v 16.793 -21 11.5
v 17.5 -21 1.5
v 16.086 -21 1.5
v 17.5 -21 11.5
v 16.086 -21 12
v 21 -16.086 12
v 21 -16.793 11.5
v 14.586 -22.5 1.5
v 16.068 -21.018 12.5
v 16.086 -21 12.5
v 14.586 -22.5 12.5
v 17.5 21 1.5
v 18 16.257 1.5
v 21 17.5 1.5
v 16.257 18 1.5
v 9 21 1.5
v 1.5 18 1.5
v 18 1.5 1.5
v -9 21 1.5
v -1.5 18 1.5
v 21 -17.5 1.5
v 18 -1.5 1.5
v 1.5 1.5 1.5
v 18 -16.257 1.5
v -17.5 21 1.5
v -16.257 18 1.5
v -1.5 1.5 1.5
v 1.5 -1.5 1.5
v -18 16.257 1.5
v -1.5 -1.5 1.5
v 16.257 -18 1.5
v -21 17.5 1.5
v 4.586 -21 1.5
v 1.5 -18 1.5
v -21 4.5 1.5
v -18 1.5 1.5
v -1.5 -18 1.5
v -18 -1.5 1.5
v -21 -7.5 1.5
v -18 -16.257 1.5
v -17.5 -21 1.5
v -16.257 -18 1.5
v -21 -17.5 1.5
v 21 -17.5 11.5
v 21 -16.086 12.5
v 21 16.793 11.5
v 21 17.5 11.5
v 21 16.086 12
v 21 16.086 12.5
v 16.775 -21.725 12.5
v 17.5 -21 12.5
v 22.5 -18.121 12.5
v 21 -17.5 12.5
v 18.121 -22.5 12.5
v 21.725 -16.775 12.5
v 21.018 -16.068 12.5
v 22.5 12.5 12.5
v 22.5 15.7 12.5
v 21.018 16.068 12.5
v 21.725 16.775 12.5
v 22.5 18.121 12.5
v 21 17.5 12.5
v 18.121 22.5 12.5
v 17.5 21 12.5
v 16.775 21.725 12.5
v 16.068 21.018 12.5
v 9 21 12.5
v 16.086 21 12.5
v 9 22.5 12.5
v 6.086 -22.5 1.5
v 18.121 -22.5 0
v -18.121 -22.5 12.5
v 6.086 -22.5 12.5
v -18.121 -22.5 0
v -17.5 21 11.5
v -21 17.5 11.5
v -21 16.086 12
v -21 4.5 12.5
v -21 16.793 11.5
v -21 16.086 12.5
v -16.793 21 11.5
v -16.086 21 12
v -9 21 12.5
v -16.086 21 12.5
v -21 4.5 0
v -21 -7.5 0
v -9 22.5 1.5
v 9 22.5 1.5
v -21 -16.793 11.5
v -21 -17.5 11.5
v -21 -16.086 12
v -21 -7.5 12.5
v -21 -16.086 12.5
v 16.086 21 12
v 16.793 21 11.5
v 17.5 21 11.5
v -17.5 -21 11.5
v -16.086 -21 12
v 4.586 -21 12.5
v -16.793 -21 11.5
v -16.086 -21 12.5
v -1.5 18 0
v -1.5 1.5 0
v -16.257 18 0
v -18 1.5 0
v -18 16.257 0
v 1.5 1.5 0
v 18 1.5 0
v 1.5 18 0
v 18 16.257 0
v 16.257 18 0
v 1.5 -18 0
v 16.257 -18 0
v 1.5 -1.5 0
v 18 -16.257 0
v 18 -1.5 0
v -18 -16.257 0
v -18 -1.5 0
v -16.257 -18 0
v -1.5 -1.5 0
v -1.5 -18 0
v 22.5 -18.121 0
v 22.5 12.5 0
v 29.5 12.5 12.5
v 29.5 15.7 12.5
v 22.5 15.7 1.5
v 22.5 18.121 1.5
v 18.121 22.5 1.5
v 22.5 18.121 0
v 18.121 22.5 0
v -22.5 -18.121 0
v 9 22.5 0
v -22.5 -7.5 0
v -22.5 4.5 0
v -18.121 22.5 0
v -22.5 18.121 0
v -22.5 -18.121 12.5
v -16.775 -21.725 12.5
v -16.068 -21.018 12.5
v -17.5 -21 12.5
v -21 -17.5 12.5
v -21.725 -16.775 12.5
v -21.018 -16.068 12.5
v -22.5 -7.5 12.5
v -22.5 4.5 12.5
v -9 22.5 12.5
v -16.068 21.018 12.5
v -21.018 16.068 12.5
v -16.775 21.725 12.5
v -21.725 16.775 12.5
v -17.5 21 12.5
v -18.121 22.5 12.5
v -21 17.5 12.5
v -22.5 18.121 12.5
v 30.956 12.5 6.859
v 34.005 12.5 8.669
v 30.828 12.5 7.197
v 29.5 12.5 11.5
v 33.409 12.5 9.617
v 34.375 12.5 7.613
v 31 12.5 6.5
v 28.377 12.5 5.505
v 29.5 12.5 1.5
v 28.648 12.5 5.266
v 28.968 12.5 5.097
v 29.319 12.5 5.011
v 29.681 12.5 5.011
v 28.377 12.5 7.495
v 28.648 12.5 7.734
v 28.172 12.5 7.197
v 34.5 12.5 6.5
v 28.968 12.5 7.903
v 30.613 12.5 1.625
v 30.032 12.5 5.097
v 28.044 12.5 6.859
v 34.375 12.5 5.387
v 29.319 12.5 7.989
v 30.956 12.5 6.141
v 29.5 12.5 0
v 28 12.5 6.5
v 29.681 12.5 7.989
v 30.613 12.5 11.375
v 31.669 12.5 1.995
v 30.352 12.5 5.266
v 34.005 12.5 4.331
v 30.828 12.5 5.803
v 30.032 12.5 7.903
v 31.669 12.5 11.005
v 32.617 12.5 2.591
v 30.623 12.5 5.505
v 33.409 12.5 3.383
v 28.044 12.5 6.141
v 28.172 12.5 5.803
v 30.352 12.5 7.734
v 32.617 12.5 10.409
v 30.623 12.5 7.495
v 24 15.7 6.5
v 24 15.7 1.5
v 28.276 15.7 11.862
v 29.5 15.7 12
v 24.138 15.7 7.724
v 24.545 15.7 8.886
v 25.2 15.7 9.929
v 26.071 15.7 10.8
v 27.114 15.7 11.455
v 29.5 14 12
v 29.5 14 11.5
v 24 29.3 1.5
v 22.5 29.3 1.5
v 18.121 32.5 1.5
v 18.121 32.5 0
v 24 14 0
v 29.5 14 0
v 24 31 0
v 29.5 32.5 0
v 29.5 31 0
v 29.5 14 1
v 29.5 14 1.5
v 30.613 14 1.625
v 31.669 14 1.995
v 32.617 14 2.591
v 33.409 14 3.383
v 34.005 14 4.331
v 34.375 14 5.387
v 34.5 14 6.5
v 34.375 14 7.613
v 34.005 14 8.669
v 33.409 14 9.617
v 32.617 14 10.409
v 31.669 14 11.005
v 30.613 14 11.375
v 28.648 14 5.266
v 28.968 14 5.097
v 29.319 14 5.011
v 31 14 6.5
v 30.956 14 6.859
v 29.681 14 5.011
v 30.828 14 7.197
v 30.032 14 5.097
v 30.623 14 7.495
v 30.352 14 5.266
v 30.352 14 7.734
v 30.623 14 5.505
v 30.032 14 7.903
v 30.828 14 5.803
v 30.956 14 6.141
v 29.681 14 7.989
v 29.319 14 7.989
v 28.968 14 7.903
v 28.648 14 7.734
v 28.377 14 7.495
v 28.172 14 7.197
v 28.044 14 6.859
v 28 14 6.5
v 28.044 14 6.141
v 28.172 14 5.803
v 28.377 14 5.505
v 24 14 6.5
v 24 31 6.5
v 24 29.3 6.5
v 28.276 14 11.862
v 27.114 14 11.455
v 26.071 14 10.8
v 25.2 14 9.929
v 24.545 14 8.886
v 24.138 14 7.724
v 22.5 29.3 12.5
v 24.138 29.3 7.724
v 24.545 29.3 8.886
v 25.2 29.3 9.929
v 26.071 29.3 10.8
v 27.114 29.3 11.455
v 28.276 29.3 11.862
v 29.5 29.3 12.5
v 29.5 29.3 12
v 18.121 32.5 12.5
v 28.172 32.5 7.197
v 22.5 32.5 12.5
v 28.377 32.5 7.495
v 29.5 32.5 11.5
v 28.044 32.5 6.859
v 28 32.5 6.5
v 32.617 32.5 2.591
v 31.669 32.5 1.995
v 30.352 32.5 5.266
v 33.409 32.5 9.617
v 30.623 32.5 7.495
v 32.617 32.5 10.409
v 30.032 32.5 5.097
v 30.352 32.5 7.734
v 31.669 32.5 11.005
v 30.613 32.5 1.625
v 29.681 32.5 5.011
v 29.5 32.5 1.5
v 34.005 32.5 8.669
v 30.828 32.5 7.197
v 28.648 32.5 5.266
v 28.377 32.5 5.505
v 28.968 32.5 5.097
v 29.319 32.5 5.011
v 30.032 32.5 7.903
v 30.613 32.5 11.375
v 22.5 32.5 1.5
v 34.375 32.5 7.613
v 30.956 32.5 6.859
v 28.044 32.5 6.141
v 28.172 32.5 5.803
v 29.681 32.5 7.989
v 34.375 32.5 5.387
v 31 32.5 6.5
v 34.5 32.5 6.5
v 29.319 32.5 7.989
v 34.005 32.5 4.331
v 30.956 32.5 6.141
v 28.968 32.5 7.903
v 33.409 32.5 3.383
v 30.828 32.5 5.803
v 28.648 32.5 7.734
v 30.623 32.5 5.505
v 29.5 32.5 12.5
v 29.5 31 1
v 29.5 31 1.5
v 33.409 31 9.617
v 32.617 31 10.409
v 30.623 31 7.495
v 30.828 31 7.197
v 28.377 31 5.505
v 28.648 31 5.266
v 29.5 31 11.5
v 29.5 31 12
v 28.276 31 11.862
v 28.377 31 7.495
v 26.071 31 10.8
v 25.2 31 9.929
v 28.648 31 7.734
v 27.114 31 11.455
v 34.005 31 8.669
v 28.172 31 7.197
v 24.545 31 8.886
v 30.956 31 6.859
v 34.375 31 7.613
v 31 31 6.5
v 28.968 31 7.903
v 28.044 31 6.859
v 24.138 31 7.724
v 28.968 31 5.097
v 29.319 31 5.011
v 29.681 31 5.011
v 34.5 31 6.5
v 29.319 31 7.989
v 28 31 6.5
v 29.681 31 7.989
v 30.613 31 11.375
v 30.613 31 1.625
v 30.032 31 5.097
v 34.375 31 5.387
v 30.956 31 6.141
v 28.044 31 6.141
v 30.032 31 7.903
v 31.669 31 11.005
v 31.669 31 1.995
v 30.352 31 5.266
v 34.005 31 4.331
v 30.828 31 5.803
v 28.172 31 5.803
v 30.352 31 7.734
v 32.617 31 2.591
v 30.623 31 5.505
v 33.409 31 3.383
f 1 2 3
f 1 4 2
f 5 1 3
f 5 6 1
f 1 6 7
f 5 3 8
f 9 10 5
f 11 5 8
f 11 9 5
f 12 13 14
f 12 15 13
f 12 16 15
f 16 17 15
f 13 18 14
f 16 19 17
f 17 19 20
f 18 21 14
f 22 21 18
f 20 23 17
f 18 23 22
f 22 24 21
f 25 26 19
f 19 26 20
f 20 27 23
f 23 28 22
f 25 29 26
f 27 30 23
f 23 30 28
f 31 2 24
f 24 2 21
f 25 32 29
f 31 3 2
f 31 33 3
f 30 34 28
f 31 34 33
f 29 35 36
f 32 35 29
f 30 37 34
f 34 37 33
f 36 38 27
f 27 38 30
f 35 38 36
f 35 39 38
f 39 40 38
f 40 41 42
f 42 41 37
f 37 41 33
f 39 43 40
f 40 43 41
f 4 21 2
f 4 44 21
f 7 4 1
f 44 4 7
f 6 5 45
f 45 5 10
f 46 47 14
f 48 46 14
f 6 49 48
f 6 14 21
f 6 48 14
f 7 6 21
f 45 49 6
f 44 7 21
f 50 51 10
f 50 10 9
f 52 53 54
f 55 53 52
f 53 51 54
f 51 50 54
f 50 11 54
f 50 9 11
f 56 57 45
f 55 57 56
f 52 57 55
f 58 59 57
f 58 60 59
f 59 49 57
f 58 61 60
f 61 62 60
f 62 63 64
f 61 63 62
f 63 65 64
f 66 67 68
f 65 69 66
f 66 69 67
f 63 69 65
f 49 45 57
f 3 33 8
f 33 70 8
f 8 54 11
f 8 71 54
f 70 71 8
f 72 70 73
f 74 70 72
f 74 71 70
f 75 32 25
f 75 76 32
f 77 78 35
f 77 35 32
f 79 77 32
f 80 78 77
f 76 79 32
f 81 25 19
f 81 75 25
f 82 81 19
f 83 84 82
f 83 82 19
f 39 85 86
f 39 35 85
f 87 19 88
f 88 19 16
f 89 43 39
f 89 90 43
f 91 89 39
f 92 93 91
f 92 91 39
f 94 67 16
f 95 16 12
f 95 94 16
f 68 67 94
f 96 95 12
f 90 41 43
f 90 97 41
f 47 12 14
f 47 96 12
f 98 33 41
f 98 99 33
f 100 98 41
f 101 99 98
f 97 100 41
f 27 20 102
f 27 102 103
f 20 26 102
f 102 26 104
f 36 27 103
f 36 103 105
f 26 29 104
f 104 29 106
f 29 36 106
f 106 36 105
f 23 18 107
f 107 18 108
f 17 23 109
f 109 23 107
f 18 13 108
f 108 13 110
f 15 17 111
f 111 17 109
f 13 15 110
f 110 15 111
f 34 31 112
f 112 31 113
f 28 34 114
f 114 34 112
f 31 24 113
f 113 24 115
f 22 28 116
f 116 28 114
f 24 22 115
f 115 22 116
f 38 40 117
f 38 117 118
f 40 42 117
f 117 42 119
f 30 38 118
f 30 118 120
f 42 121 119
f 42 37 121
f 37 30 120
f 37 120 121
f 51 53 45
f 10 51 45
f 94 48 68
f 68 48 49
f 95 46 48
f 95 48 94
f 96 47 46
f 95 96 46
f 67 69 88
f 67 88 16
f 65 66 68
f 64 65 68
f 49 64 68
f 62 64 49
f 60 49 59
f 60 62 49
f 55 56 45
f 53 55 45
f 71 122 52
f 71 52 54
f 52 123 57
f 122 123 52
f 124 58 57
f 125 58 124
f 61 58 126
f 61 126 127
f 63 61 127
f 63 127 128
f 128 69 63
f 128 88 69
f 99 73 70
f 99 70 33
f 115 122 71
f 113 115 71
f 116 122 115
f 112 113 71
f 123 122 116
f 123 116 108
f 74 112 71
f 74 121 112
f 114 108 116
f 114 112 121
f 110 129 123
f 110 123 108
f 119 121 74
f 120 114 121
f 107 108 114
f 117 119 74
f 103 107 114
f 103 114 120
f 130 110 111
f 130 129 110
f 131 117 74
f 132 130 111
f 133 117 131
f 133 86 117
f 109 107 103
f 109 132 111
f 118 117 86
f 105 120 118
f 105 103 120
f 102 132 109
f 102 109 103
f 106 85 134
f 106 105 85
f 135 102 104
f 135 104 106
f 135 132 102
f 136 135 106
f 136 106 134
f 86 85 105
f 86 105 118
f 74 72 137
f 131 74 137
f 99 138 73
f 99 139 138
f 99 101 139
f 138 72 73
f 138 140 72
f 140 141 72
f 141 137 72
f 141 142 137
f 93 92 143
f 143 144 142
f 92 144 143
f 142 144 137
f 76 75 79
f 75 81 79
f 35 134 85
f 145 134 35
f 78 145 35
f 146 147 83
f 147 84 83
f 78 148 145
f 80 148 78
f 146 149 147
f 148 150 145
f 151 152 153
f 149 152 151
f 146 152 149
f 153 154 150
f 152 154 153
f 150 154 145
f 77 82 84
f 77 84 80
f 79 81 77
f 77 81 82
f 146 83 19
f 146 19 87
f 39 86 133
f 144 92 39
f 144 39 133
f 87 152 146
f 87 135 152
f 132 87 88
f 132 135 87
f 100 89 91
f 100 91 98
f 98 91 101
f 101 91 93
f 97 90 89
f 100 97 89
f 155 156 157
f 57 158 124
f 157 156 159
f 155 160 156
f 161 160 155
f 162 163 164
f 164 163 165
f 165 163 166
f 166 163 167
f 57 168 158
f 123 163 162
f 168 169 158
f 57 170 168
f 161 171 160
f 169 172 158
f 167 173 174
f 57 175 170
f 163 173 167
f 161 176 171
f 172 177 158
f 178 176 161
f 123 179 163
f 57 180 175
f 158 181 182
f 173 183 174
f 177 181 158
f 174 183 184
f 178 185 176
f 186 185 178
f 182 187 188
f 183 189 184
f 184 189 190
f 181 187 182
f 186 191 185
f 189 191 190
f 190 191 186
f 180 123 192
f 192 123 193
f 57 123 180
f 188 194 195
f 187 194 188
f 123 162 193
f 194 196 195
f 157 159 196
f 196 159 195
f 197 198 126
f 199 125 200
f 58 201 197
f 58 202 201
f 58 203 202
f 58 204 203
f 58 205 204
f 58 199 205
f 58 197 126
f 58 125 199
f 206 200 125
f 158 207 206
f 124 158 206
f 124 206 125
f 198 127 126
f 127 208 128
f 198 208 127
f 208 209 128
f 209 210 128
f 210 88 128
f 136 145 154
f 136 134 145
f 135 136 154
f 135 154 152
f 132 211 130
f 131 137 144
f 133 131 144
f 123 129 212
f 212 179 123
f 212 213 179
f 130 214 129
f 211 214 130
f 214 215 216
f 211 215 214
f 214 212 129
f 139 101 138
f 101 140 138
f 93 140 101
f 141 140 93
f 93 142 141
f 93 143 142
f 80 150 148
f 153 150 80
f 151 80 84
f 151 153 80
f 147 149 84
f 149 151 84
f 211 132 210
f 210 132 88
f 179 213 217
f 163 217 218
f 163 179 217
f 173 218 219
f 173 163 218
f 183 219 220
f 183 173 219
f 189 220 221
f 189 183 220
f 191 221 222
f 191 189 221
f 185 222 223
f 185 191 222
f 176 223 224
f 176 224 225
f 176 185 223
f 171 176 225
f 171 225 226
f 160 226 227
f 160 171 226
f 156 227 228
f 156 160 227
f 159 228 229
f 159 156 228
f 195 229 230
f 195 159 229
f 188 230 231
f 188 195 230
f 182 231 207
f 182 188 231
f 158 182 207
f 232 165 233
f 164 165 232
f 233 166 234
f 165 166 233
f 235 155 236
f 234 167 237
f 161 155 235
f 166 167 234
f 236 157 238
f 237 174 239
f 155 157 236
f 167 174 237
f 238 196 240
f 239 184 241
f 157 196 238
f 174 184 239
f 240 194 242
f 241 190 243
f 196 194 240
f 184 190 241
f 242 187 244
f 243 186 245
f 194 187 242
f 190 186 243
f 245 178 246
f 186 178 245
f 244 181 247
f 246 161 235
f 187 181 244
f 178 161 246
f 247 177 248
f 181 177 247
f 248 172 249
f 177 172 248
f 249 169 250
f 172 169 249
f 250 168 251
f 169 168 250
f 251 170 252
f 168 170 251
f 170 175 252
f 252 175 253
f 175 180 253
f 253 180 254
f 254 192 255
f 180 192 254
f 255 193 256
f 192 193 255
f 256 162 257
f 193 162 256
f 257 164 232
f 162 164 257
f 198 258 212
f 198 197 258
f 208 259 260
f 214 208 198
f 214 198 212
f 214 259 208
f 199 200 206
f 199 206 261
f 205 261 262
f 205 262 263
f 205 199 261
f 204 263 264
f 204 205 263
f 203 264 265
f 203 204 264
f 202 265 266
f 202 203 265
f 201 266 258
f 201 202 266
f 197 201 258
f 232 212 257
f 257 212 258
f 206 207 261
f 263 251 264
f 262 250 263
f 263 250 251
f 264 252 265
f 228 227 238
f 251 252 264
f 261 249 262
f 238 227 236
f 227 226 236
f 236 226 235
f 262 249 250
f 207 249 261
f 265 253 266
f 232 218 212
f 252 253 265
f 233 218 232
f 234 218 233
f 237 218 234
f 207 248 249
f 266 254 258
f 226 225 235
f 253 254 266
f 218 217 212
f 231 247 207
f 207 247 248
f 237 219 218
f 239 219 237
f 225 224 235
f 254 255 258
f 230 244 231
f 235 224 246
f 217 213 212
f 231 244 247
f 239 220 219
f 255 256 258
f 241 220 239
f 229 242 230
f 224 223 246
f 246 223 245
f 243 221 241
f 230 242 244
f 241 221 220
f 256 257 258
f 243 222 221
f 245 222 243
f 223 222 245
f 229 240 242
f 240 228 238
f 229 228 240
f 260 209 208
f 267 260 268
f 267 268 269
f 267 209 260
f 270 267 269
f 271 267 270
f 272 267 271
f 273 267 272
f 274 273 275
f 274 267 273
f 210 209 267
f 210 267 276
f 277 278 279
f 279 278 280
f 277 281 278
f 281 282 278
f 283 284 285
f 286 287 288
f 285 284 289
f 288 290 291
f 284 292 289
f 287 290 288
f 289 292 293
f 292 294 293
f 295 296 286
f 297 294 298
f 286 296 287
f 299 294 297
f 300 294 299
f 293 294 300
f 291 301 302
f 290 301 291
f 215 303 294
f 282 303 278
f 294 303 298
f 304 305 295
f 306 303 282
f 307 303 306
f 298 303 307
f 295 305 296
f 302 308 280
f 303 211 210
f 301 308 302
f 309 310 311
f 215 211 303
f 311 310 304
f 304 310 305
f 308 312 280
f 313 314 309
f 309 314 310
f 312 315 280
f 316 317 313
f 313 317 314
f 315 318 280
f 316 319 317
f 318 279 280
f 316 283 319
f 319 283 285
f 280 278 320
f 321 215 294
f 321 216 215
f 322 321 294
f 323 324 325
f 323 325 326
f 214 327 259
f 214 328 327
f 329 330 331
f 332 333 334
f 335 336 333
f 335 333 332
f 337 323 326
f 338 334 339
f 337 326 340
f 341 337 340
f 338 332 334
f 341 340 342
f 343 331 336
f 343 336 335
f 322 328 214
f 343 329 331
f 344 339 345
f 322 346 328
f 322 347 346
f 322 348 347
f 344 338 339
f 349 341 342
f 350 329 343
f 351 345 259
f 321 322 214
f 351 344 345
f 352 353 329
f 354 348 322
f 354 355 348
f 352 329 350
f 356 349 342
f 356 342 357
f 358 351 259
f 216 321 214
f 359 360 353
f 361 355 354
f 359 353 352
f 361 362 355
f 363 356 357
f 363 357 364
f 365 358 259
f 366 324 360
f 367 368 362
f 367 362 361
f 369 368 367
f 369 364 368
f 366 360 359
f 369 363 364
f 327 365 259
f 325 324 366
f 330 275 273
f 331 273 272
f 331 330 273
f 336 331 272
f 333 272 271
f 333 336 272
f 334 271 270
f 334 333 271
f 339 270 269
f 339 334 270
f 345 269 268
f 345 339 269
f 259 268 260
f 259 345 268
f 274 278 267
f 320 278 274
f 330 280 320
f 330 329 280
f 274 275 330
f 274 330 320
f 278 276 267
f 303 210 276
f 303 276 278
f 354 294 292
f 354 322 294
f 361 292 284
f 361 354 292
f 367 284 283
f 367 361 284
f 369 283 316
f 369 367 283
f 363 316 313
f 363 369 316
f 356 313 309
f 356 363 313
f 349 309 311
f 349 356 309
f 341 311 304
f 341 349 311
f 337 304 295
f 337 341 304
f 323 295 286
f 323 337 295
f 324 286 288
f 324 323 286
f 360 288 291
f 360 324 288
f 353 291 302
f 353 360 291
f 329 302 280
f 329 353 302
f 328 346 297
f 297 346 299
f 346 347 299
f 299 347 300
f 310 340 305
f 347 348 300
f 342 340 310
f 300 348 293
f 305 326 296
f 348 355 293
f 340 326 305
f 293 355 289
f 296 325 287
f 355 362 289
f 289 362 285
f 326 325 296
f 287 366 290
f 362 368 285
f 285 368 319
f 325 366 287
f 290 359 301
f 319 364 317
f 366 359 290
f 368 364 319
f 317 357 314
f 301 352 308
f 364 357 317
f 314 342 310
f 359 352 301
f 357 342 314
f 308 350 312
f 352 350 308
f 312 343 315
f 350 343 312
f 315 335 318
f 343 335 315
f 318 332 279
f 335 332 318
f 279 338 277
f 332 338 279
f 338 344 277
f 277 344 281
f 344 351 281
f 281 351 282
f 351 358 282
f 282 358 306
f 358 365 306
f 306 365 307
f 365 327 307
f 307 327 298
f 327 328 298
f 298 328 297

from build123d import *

# Parameters (mm, degrees)
PAD_DEPTH       = 12.5
POCKET_DEPTH    = 11
POCKET001_DEPTH = 1.5
SKETCH052_W     = 7
SKETCH052_H     = 1
PAD001_DEPTH    = 1
CHAMFER_SIZE    = 0.5
SKETCH053_W     = 7
SKETCH053_H     = 1
PAD002_DEPTH    = 1
CHAMFER001_SIZE = 0.5
SKETCH054_W     = 7
SKETCH054_H     = 1
PAD003_DEPTH    = 1
CHAMFER002_SIZE = 0.5
SKETCH055_W     = 7
SKETCH055_H     = 1
PAD004_DEPTH    = 1
CHAMFER003_SIZE = 0.5
SKETCH056_W     = 1.5
SKETCH056_H     = 12
POCKET002_DEPTH = 12.5
SKETCH057_W     = 18
SKETCH057_H     = 1.5
POCKET003_DEPTH = 11
PAD005_DEPTH    = 12.5
POCKET004_DEPTH = 20
POCKET005_DEPTH = 11
SKETCH063_R     = 1.5
POCKET006_DEPTH = 20
POCKET007_DEPTH = 17
POCKET008_DEPTH = 11
PAD006_DEPTH    = 11
PAD007_DEPTH    = 1.5


with BuildPart() as part:
    # Sketch001 → Pad (new body)
    with BuildSketch(Plane.XY):
        Polygon((-22.5, 18.12132), (-18.12132, 22.5), (18.12132, 22.5), (22.5, 18.12132), (22.5, -18.12132), (18.12132, -22.5), (-18.12132, -22.5), (-22.5, -18.12132), align=None)
    extrude(amount=PAD_DEPTH)

    # Sketch002 (on Face10 of Pad) → Pocket (cut)
    with BuildSketch(Plane.XY.offset(12.5)):
        Polygon((-21, 17.5), (-17.5, 21), (17.5, 21), (21, 17.5), (21, -17.5), (17.5, -21), (-17.5, -21), (-21, -17.5), align=None)
    extrude(amount=-POCKET_DEPTH, mode=Mode.SUBTRACT)

    # Sketch003 (on Face19 of Pocket) → Pocket001 (cut)
    with BuildSketch(Plane.XY.offset(1.5)):
        Polygon((-16.257359, 18), (-18, 16.257359), (-18, 1.5), (-1.5, 1.5), (-1.5, 18), align=None)
        Polygon((-18, -16.257359), (-16.257359, -18), (-1.5, -18), (-1.5, -1.5), (-18, -1.5), align=None)
        Polygon((16.257359, -18), (18, -16.257359), (18, -1.5), (1.5, -1.5), (1.5, -18), align=None)
        Polygon((18, 1.5), (18, 16.257359), (16.257359, 18), (1.5, 18), (1.5, 1.5), align=None)
    extrude(amount=-POCKET001_DEPTH, mode=Mode.SUBTRACT)

    # Sketch052 (on Face31 of Pocket001) → Pad001 (join)
    with BuildSketch(Plane(origin=(-19.25, 19.25, 0), x_dir=(0.707107, 0.707107, 0), z_dir=(0.707107, -0.707107, 0))):
        with Locations((0, 12)):
            Rectangle(SKETCH052_W, SKETCH052_H)
    extrude(amount=PAD001_DEPTH)

    # Chamfer
    chamfer_edges = [part.edges().sort_by_distance(p)[0] for p in [
        (-18.542893, 18.542893, 11.5),
    ]]
    chamfer(chamfer_edges, length=CHAMFER_SIZE)

    # Sketch053 (on Face8 of Chamfer) → Pad002 (join)
    with BuildSketch(Plane(origin=(19.25, 19.25, 0), x_dir=(0.707107, -0.707107, 0), z_dir=(-0.707107, -0.707107, 0))):
        with Locations((0, 12)):
            Rectangle(SKETCH053_W, SKETCH053_H)
    extrude(amount=PAD002_DEPTH)

    # Chamfer001
    chamfer001_edges = [part.edges().sort_by_distance(p)[0] for p in [
        (18.542893, 18.542893, 11.5),
    ]]
    chamfer(chamfer001_edges, length=CHAMFER001_SIZE)

    # Sketch054 (on Face28 of Chamfer001) → Pad003 (join)
    with BuildSketch(Plane(origin=(-19.25, -19.25, 0), x_dir=(-0.707107, 0.707107, 0), z_dir=(0.707107, 0.707107, 0))):
        with Locations((0, 12)):
            Rectangle(SKETCH054_W, SKETCH054_H)
    extrude(amount=PAD003_DEPTH)

    # Chamfer002
    chamfer002_edges = [part.edges().sort_by_distance(p)[0] for p in [
        (-18.542893, -18.542893, 11.5),
    ]]
    chamfer(chamfer002_edges, length=CHAMFER002_SIZE)

    # Sketch055 (on Face6 of Chamfer002) → Pad004 (join)
    with BuildSketch(Plane(origin=(19.25, -19.25, 0), x_dir=(-0.707107, -0.707107, 0), z_dir=(-0.707107, 0.707107, 0))):
        with Locations((0, 12)):
            Rectangle(SKETCH055_W, SKETCH055_H)
    extrude(amount=PAD004_DEPTH)

    # Chamfer003
    chamfer003_edges = [part.edges().sort_by_distance(p)[0] for p in [
        (18.542893, -18.542893, 11.5),
    ]]
    chamfer(chamfer003_edges, length=CHAMFER003_SIZE)

    # Sketch056 (on Face7 of Chamfer003) → Pocket002 (cut)
    with BuildSketch(Plane.XY.offset(12.5)):
        with Locations((-21.75, -1.5)):
            Rectangle(SKETCH056_W, SKETCH056_H)
    extrude(amount=-POCKET002_DEPTH, mode=Mode.SUBTRACT)

    # Sketch057 (on Face7 of Pocket002) → Pocket003 (cut)
    with BuildSketch(Plane.XY.offset(12.5)):
        with Locations((0, 21.75)):
            Rectangle(SKETCH057_W, SKETCH057_H)
    extrude(amount=-POCKET003_DEPTH, mode=Mode.SUBTRACT)

    # Sketch058 → Pad005 (join)
    with BuildSketch(Plane.XY):
        Polygon((22.5, 12.5), (34.5, 12.5), (34.5, 32.5), (18.12132, 32.5), (18.12132, 22.5), (22.5, 18.12132), align=None)
    extrude(amount=PAD005_DEPTH)

    # Sketch059 (on Face71 of Pad005) → Pocket004 (cut)
    with BuildSketch(Plane.XZ.offset(-12.5)):
        with BuildLine():
            ThreePointArc((29.5, 1.5), (34.5, 6.5), (29.5, 11.5))
            Line((29.5, 11.5), (29.5, 12.5))
            Line((29.5, 12.5), (35.5, 12.5))
            Line((35.5, 12.5), (35.5, 0))
            Line((35.5, 0), (29.5, 0))
            Line((29.5, 0), (29.5, 1.5))
        make_face()
    extrude(amount=-POCKET004_DEPTH, mode=Mode.SUBTRACT)

    # Sketch060 (on Face44 of Pocket004) → Pocket005 (cut)
    with BuildSketch(Plane.XY.offset(12.5)):
        Polygon((18.12132, 22.5), (18.12132, 32.5), (22.5, 32.5), (22.5, 29.3), (34.5, 29.3), (34.5, 15.7), (22.5, 15.7), (22.5, 18.12132), align=None)
    extrude(amount=-POCKET005_DEPTH, mode=Mode.SUBTRACT)

    # Sketch063 → Pocket006 (cut)
    with BuildSketch(Plane.XZ.offset(-12.5)):
        with Locations((29.5, 6.5)):
            Circle(SKETCH063_R)
    extrude(amount=-POCKET006_DEPTH, mode=Mode.SUBTRACT)

    # Sketch064 (on Face90 of Pocket006) → Pocket007 (cut)
    with BuildSketch(Plane.XZ.offset(-31)):
        with BuildLine():
            ThreePointArc((29.5, 1), (33.389087, 10.389087), (24, 6.5))
            Line((24, 6.5), (24, 0))
            Line((24, 0), (29.5, 0))
            Line((29.5, 0), (29.5, 1))
        make_face()
    extrude(amount=POCKET007_DEPTH, mode=Mode.SUBTRACT)

    # Sketch065 (on Face7 of Pocket007) → Pocket008 (cut)
    with BuildSketch(Plane.XY.offset(12.5)):
        Polygon((16.085786, -21), (14.585786, -22.5), (6.085786, -22.5), (4.585786, -21), align=None)
    extrude(amount=-POCKET008_DEPTH, mode=Mode.SUBTRACT)

    # Sketch066 (on Face75 of Pocket008) → Pad006 (join)
    with BuildSketch(Plane.XY.offset(1.5)):
        Polygon((18.12132, 32.5), (22.5, 32.5), (22.5, 29.3), align=None)
    extrude(amount=PAD006_DEPTH)

    # Sketch067 → Pad007 (join)
    with BuildSketch(Plane.XY):
        Polygon((18.12132, 32.5), (9, 22.5), (18.12132, 22.5), align=None)
    extrude(amount=PAD007_DEPTH)


solid = part.part
